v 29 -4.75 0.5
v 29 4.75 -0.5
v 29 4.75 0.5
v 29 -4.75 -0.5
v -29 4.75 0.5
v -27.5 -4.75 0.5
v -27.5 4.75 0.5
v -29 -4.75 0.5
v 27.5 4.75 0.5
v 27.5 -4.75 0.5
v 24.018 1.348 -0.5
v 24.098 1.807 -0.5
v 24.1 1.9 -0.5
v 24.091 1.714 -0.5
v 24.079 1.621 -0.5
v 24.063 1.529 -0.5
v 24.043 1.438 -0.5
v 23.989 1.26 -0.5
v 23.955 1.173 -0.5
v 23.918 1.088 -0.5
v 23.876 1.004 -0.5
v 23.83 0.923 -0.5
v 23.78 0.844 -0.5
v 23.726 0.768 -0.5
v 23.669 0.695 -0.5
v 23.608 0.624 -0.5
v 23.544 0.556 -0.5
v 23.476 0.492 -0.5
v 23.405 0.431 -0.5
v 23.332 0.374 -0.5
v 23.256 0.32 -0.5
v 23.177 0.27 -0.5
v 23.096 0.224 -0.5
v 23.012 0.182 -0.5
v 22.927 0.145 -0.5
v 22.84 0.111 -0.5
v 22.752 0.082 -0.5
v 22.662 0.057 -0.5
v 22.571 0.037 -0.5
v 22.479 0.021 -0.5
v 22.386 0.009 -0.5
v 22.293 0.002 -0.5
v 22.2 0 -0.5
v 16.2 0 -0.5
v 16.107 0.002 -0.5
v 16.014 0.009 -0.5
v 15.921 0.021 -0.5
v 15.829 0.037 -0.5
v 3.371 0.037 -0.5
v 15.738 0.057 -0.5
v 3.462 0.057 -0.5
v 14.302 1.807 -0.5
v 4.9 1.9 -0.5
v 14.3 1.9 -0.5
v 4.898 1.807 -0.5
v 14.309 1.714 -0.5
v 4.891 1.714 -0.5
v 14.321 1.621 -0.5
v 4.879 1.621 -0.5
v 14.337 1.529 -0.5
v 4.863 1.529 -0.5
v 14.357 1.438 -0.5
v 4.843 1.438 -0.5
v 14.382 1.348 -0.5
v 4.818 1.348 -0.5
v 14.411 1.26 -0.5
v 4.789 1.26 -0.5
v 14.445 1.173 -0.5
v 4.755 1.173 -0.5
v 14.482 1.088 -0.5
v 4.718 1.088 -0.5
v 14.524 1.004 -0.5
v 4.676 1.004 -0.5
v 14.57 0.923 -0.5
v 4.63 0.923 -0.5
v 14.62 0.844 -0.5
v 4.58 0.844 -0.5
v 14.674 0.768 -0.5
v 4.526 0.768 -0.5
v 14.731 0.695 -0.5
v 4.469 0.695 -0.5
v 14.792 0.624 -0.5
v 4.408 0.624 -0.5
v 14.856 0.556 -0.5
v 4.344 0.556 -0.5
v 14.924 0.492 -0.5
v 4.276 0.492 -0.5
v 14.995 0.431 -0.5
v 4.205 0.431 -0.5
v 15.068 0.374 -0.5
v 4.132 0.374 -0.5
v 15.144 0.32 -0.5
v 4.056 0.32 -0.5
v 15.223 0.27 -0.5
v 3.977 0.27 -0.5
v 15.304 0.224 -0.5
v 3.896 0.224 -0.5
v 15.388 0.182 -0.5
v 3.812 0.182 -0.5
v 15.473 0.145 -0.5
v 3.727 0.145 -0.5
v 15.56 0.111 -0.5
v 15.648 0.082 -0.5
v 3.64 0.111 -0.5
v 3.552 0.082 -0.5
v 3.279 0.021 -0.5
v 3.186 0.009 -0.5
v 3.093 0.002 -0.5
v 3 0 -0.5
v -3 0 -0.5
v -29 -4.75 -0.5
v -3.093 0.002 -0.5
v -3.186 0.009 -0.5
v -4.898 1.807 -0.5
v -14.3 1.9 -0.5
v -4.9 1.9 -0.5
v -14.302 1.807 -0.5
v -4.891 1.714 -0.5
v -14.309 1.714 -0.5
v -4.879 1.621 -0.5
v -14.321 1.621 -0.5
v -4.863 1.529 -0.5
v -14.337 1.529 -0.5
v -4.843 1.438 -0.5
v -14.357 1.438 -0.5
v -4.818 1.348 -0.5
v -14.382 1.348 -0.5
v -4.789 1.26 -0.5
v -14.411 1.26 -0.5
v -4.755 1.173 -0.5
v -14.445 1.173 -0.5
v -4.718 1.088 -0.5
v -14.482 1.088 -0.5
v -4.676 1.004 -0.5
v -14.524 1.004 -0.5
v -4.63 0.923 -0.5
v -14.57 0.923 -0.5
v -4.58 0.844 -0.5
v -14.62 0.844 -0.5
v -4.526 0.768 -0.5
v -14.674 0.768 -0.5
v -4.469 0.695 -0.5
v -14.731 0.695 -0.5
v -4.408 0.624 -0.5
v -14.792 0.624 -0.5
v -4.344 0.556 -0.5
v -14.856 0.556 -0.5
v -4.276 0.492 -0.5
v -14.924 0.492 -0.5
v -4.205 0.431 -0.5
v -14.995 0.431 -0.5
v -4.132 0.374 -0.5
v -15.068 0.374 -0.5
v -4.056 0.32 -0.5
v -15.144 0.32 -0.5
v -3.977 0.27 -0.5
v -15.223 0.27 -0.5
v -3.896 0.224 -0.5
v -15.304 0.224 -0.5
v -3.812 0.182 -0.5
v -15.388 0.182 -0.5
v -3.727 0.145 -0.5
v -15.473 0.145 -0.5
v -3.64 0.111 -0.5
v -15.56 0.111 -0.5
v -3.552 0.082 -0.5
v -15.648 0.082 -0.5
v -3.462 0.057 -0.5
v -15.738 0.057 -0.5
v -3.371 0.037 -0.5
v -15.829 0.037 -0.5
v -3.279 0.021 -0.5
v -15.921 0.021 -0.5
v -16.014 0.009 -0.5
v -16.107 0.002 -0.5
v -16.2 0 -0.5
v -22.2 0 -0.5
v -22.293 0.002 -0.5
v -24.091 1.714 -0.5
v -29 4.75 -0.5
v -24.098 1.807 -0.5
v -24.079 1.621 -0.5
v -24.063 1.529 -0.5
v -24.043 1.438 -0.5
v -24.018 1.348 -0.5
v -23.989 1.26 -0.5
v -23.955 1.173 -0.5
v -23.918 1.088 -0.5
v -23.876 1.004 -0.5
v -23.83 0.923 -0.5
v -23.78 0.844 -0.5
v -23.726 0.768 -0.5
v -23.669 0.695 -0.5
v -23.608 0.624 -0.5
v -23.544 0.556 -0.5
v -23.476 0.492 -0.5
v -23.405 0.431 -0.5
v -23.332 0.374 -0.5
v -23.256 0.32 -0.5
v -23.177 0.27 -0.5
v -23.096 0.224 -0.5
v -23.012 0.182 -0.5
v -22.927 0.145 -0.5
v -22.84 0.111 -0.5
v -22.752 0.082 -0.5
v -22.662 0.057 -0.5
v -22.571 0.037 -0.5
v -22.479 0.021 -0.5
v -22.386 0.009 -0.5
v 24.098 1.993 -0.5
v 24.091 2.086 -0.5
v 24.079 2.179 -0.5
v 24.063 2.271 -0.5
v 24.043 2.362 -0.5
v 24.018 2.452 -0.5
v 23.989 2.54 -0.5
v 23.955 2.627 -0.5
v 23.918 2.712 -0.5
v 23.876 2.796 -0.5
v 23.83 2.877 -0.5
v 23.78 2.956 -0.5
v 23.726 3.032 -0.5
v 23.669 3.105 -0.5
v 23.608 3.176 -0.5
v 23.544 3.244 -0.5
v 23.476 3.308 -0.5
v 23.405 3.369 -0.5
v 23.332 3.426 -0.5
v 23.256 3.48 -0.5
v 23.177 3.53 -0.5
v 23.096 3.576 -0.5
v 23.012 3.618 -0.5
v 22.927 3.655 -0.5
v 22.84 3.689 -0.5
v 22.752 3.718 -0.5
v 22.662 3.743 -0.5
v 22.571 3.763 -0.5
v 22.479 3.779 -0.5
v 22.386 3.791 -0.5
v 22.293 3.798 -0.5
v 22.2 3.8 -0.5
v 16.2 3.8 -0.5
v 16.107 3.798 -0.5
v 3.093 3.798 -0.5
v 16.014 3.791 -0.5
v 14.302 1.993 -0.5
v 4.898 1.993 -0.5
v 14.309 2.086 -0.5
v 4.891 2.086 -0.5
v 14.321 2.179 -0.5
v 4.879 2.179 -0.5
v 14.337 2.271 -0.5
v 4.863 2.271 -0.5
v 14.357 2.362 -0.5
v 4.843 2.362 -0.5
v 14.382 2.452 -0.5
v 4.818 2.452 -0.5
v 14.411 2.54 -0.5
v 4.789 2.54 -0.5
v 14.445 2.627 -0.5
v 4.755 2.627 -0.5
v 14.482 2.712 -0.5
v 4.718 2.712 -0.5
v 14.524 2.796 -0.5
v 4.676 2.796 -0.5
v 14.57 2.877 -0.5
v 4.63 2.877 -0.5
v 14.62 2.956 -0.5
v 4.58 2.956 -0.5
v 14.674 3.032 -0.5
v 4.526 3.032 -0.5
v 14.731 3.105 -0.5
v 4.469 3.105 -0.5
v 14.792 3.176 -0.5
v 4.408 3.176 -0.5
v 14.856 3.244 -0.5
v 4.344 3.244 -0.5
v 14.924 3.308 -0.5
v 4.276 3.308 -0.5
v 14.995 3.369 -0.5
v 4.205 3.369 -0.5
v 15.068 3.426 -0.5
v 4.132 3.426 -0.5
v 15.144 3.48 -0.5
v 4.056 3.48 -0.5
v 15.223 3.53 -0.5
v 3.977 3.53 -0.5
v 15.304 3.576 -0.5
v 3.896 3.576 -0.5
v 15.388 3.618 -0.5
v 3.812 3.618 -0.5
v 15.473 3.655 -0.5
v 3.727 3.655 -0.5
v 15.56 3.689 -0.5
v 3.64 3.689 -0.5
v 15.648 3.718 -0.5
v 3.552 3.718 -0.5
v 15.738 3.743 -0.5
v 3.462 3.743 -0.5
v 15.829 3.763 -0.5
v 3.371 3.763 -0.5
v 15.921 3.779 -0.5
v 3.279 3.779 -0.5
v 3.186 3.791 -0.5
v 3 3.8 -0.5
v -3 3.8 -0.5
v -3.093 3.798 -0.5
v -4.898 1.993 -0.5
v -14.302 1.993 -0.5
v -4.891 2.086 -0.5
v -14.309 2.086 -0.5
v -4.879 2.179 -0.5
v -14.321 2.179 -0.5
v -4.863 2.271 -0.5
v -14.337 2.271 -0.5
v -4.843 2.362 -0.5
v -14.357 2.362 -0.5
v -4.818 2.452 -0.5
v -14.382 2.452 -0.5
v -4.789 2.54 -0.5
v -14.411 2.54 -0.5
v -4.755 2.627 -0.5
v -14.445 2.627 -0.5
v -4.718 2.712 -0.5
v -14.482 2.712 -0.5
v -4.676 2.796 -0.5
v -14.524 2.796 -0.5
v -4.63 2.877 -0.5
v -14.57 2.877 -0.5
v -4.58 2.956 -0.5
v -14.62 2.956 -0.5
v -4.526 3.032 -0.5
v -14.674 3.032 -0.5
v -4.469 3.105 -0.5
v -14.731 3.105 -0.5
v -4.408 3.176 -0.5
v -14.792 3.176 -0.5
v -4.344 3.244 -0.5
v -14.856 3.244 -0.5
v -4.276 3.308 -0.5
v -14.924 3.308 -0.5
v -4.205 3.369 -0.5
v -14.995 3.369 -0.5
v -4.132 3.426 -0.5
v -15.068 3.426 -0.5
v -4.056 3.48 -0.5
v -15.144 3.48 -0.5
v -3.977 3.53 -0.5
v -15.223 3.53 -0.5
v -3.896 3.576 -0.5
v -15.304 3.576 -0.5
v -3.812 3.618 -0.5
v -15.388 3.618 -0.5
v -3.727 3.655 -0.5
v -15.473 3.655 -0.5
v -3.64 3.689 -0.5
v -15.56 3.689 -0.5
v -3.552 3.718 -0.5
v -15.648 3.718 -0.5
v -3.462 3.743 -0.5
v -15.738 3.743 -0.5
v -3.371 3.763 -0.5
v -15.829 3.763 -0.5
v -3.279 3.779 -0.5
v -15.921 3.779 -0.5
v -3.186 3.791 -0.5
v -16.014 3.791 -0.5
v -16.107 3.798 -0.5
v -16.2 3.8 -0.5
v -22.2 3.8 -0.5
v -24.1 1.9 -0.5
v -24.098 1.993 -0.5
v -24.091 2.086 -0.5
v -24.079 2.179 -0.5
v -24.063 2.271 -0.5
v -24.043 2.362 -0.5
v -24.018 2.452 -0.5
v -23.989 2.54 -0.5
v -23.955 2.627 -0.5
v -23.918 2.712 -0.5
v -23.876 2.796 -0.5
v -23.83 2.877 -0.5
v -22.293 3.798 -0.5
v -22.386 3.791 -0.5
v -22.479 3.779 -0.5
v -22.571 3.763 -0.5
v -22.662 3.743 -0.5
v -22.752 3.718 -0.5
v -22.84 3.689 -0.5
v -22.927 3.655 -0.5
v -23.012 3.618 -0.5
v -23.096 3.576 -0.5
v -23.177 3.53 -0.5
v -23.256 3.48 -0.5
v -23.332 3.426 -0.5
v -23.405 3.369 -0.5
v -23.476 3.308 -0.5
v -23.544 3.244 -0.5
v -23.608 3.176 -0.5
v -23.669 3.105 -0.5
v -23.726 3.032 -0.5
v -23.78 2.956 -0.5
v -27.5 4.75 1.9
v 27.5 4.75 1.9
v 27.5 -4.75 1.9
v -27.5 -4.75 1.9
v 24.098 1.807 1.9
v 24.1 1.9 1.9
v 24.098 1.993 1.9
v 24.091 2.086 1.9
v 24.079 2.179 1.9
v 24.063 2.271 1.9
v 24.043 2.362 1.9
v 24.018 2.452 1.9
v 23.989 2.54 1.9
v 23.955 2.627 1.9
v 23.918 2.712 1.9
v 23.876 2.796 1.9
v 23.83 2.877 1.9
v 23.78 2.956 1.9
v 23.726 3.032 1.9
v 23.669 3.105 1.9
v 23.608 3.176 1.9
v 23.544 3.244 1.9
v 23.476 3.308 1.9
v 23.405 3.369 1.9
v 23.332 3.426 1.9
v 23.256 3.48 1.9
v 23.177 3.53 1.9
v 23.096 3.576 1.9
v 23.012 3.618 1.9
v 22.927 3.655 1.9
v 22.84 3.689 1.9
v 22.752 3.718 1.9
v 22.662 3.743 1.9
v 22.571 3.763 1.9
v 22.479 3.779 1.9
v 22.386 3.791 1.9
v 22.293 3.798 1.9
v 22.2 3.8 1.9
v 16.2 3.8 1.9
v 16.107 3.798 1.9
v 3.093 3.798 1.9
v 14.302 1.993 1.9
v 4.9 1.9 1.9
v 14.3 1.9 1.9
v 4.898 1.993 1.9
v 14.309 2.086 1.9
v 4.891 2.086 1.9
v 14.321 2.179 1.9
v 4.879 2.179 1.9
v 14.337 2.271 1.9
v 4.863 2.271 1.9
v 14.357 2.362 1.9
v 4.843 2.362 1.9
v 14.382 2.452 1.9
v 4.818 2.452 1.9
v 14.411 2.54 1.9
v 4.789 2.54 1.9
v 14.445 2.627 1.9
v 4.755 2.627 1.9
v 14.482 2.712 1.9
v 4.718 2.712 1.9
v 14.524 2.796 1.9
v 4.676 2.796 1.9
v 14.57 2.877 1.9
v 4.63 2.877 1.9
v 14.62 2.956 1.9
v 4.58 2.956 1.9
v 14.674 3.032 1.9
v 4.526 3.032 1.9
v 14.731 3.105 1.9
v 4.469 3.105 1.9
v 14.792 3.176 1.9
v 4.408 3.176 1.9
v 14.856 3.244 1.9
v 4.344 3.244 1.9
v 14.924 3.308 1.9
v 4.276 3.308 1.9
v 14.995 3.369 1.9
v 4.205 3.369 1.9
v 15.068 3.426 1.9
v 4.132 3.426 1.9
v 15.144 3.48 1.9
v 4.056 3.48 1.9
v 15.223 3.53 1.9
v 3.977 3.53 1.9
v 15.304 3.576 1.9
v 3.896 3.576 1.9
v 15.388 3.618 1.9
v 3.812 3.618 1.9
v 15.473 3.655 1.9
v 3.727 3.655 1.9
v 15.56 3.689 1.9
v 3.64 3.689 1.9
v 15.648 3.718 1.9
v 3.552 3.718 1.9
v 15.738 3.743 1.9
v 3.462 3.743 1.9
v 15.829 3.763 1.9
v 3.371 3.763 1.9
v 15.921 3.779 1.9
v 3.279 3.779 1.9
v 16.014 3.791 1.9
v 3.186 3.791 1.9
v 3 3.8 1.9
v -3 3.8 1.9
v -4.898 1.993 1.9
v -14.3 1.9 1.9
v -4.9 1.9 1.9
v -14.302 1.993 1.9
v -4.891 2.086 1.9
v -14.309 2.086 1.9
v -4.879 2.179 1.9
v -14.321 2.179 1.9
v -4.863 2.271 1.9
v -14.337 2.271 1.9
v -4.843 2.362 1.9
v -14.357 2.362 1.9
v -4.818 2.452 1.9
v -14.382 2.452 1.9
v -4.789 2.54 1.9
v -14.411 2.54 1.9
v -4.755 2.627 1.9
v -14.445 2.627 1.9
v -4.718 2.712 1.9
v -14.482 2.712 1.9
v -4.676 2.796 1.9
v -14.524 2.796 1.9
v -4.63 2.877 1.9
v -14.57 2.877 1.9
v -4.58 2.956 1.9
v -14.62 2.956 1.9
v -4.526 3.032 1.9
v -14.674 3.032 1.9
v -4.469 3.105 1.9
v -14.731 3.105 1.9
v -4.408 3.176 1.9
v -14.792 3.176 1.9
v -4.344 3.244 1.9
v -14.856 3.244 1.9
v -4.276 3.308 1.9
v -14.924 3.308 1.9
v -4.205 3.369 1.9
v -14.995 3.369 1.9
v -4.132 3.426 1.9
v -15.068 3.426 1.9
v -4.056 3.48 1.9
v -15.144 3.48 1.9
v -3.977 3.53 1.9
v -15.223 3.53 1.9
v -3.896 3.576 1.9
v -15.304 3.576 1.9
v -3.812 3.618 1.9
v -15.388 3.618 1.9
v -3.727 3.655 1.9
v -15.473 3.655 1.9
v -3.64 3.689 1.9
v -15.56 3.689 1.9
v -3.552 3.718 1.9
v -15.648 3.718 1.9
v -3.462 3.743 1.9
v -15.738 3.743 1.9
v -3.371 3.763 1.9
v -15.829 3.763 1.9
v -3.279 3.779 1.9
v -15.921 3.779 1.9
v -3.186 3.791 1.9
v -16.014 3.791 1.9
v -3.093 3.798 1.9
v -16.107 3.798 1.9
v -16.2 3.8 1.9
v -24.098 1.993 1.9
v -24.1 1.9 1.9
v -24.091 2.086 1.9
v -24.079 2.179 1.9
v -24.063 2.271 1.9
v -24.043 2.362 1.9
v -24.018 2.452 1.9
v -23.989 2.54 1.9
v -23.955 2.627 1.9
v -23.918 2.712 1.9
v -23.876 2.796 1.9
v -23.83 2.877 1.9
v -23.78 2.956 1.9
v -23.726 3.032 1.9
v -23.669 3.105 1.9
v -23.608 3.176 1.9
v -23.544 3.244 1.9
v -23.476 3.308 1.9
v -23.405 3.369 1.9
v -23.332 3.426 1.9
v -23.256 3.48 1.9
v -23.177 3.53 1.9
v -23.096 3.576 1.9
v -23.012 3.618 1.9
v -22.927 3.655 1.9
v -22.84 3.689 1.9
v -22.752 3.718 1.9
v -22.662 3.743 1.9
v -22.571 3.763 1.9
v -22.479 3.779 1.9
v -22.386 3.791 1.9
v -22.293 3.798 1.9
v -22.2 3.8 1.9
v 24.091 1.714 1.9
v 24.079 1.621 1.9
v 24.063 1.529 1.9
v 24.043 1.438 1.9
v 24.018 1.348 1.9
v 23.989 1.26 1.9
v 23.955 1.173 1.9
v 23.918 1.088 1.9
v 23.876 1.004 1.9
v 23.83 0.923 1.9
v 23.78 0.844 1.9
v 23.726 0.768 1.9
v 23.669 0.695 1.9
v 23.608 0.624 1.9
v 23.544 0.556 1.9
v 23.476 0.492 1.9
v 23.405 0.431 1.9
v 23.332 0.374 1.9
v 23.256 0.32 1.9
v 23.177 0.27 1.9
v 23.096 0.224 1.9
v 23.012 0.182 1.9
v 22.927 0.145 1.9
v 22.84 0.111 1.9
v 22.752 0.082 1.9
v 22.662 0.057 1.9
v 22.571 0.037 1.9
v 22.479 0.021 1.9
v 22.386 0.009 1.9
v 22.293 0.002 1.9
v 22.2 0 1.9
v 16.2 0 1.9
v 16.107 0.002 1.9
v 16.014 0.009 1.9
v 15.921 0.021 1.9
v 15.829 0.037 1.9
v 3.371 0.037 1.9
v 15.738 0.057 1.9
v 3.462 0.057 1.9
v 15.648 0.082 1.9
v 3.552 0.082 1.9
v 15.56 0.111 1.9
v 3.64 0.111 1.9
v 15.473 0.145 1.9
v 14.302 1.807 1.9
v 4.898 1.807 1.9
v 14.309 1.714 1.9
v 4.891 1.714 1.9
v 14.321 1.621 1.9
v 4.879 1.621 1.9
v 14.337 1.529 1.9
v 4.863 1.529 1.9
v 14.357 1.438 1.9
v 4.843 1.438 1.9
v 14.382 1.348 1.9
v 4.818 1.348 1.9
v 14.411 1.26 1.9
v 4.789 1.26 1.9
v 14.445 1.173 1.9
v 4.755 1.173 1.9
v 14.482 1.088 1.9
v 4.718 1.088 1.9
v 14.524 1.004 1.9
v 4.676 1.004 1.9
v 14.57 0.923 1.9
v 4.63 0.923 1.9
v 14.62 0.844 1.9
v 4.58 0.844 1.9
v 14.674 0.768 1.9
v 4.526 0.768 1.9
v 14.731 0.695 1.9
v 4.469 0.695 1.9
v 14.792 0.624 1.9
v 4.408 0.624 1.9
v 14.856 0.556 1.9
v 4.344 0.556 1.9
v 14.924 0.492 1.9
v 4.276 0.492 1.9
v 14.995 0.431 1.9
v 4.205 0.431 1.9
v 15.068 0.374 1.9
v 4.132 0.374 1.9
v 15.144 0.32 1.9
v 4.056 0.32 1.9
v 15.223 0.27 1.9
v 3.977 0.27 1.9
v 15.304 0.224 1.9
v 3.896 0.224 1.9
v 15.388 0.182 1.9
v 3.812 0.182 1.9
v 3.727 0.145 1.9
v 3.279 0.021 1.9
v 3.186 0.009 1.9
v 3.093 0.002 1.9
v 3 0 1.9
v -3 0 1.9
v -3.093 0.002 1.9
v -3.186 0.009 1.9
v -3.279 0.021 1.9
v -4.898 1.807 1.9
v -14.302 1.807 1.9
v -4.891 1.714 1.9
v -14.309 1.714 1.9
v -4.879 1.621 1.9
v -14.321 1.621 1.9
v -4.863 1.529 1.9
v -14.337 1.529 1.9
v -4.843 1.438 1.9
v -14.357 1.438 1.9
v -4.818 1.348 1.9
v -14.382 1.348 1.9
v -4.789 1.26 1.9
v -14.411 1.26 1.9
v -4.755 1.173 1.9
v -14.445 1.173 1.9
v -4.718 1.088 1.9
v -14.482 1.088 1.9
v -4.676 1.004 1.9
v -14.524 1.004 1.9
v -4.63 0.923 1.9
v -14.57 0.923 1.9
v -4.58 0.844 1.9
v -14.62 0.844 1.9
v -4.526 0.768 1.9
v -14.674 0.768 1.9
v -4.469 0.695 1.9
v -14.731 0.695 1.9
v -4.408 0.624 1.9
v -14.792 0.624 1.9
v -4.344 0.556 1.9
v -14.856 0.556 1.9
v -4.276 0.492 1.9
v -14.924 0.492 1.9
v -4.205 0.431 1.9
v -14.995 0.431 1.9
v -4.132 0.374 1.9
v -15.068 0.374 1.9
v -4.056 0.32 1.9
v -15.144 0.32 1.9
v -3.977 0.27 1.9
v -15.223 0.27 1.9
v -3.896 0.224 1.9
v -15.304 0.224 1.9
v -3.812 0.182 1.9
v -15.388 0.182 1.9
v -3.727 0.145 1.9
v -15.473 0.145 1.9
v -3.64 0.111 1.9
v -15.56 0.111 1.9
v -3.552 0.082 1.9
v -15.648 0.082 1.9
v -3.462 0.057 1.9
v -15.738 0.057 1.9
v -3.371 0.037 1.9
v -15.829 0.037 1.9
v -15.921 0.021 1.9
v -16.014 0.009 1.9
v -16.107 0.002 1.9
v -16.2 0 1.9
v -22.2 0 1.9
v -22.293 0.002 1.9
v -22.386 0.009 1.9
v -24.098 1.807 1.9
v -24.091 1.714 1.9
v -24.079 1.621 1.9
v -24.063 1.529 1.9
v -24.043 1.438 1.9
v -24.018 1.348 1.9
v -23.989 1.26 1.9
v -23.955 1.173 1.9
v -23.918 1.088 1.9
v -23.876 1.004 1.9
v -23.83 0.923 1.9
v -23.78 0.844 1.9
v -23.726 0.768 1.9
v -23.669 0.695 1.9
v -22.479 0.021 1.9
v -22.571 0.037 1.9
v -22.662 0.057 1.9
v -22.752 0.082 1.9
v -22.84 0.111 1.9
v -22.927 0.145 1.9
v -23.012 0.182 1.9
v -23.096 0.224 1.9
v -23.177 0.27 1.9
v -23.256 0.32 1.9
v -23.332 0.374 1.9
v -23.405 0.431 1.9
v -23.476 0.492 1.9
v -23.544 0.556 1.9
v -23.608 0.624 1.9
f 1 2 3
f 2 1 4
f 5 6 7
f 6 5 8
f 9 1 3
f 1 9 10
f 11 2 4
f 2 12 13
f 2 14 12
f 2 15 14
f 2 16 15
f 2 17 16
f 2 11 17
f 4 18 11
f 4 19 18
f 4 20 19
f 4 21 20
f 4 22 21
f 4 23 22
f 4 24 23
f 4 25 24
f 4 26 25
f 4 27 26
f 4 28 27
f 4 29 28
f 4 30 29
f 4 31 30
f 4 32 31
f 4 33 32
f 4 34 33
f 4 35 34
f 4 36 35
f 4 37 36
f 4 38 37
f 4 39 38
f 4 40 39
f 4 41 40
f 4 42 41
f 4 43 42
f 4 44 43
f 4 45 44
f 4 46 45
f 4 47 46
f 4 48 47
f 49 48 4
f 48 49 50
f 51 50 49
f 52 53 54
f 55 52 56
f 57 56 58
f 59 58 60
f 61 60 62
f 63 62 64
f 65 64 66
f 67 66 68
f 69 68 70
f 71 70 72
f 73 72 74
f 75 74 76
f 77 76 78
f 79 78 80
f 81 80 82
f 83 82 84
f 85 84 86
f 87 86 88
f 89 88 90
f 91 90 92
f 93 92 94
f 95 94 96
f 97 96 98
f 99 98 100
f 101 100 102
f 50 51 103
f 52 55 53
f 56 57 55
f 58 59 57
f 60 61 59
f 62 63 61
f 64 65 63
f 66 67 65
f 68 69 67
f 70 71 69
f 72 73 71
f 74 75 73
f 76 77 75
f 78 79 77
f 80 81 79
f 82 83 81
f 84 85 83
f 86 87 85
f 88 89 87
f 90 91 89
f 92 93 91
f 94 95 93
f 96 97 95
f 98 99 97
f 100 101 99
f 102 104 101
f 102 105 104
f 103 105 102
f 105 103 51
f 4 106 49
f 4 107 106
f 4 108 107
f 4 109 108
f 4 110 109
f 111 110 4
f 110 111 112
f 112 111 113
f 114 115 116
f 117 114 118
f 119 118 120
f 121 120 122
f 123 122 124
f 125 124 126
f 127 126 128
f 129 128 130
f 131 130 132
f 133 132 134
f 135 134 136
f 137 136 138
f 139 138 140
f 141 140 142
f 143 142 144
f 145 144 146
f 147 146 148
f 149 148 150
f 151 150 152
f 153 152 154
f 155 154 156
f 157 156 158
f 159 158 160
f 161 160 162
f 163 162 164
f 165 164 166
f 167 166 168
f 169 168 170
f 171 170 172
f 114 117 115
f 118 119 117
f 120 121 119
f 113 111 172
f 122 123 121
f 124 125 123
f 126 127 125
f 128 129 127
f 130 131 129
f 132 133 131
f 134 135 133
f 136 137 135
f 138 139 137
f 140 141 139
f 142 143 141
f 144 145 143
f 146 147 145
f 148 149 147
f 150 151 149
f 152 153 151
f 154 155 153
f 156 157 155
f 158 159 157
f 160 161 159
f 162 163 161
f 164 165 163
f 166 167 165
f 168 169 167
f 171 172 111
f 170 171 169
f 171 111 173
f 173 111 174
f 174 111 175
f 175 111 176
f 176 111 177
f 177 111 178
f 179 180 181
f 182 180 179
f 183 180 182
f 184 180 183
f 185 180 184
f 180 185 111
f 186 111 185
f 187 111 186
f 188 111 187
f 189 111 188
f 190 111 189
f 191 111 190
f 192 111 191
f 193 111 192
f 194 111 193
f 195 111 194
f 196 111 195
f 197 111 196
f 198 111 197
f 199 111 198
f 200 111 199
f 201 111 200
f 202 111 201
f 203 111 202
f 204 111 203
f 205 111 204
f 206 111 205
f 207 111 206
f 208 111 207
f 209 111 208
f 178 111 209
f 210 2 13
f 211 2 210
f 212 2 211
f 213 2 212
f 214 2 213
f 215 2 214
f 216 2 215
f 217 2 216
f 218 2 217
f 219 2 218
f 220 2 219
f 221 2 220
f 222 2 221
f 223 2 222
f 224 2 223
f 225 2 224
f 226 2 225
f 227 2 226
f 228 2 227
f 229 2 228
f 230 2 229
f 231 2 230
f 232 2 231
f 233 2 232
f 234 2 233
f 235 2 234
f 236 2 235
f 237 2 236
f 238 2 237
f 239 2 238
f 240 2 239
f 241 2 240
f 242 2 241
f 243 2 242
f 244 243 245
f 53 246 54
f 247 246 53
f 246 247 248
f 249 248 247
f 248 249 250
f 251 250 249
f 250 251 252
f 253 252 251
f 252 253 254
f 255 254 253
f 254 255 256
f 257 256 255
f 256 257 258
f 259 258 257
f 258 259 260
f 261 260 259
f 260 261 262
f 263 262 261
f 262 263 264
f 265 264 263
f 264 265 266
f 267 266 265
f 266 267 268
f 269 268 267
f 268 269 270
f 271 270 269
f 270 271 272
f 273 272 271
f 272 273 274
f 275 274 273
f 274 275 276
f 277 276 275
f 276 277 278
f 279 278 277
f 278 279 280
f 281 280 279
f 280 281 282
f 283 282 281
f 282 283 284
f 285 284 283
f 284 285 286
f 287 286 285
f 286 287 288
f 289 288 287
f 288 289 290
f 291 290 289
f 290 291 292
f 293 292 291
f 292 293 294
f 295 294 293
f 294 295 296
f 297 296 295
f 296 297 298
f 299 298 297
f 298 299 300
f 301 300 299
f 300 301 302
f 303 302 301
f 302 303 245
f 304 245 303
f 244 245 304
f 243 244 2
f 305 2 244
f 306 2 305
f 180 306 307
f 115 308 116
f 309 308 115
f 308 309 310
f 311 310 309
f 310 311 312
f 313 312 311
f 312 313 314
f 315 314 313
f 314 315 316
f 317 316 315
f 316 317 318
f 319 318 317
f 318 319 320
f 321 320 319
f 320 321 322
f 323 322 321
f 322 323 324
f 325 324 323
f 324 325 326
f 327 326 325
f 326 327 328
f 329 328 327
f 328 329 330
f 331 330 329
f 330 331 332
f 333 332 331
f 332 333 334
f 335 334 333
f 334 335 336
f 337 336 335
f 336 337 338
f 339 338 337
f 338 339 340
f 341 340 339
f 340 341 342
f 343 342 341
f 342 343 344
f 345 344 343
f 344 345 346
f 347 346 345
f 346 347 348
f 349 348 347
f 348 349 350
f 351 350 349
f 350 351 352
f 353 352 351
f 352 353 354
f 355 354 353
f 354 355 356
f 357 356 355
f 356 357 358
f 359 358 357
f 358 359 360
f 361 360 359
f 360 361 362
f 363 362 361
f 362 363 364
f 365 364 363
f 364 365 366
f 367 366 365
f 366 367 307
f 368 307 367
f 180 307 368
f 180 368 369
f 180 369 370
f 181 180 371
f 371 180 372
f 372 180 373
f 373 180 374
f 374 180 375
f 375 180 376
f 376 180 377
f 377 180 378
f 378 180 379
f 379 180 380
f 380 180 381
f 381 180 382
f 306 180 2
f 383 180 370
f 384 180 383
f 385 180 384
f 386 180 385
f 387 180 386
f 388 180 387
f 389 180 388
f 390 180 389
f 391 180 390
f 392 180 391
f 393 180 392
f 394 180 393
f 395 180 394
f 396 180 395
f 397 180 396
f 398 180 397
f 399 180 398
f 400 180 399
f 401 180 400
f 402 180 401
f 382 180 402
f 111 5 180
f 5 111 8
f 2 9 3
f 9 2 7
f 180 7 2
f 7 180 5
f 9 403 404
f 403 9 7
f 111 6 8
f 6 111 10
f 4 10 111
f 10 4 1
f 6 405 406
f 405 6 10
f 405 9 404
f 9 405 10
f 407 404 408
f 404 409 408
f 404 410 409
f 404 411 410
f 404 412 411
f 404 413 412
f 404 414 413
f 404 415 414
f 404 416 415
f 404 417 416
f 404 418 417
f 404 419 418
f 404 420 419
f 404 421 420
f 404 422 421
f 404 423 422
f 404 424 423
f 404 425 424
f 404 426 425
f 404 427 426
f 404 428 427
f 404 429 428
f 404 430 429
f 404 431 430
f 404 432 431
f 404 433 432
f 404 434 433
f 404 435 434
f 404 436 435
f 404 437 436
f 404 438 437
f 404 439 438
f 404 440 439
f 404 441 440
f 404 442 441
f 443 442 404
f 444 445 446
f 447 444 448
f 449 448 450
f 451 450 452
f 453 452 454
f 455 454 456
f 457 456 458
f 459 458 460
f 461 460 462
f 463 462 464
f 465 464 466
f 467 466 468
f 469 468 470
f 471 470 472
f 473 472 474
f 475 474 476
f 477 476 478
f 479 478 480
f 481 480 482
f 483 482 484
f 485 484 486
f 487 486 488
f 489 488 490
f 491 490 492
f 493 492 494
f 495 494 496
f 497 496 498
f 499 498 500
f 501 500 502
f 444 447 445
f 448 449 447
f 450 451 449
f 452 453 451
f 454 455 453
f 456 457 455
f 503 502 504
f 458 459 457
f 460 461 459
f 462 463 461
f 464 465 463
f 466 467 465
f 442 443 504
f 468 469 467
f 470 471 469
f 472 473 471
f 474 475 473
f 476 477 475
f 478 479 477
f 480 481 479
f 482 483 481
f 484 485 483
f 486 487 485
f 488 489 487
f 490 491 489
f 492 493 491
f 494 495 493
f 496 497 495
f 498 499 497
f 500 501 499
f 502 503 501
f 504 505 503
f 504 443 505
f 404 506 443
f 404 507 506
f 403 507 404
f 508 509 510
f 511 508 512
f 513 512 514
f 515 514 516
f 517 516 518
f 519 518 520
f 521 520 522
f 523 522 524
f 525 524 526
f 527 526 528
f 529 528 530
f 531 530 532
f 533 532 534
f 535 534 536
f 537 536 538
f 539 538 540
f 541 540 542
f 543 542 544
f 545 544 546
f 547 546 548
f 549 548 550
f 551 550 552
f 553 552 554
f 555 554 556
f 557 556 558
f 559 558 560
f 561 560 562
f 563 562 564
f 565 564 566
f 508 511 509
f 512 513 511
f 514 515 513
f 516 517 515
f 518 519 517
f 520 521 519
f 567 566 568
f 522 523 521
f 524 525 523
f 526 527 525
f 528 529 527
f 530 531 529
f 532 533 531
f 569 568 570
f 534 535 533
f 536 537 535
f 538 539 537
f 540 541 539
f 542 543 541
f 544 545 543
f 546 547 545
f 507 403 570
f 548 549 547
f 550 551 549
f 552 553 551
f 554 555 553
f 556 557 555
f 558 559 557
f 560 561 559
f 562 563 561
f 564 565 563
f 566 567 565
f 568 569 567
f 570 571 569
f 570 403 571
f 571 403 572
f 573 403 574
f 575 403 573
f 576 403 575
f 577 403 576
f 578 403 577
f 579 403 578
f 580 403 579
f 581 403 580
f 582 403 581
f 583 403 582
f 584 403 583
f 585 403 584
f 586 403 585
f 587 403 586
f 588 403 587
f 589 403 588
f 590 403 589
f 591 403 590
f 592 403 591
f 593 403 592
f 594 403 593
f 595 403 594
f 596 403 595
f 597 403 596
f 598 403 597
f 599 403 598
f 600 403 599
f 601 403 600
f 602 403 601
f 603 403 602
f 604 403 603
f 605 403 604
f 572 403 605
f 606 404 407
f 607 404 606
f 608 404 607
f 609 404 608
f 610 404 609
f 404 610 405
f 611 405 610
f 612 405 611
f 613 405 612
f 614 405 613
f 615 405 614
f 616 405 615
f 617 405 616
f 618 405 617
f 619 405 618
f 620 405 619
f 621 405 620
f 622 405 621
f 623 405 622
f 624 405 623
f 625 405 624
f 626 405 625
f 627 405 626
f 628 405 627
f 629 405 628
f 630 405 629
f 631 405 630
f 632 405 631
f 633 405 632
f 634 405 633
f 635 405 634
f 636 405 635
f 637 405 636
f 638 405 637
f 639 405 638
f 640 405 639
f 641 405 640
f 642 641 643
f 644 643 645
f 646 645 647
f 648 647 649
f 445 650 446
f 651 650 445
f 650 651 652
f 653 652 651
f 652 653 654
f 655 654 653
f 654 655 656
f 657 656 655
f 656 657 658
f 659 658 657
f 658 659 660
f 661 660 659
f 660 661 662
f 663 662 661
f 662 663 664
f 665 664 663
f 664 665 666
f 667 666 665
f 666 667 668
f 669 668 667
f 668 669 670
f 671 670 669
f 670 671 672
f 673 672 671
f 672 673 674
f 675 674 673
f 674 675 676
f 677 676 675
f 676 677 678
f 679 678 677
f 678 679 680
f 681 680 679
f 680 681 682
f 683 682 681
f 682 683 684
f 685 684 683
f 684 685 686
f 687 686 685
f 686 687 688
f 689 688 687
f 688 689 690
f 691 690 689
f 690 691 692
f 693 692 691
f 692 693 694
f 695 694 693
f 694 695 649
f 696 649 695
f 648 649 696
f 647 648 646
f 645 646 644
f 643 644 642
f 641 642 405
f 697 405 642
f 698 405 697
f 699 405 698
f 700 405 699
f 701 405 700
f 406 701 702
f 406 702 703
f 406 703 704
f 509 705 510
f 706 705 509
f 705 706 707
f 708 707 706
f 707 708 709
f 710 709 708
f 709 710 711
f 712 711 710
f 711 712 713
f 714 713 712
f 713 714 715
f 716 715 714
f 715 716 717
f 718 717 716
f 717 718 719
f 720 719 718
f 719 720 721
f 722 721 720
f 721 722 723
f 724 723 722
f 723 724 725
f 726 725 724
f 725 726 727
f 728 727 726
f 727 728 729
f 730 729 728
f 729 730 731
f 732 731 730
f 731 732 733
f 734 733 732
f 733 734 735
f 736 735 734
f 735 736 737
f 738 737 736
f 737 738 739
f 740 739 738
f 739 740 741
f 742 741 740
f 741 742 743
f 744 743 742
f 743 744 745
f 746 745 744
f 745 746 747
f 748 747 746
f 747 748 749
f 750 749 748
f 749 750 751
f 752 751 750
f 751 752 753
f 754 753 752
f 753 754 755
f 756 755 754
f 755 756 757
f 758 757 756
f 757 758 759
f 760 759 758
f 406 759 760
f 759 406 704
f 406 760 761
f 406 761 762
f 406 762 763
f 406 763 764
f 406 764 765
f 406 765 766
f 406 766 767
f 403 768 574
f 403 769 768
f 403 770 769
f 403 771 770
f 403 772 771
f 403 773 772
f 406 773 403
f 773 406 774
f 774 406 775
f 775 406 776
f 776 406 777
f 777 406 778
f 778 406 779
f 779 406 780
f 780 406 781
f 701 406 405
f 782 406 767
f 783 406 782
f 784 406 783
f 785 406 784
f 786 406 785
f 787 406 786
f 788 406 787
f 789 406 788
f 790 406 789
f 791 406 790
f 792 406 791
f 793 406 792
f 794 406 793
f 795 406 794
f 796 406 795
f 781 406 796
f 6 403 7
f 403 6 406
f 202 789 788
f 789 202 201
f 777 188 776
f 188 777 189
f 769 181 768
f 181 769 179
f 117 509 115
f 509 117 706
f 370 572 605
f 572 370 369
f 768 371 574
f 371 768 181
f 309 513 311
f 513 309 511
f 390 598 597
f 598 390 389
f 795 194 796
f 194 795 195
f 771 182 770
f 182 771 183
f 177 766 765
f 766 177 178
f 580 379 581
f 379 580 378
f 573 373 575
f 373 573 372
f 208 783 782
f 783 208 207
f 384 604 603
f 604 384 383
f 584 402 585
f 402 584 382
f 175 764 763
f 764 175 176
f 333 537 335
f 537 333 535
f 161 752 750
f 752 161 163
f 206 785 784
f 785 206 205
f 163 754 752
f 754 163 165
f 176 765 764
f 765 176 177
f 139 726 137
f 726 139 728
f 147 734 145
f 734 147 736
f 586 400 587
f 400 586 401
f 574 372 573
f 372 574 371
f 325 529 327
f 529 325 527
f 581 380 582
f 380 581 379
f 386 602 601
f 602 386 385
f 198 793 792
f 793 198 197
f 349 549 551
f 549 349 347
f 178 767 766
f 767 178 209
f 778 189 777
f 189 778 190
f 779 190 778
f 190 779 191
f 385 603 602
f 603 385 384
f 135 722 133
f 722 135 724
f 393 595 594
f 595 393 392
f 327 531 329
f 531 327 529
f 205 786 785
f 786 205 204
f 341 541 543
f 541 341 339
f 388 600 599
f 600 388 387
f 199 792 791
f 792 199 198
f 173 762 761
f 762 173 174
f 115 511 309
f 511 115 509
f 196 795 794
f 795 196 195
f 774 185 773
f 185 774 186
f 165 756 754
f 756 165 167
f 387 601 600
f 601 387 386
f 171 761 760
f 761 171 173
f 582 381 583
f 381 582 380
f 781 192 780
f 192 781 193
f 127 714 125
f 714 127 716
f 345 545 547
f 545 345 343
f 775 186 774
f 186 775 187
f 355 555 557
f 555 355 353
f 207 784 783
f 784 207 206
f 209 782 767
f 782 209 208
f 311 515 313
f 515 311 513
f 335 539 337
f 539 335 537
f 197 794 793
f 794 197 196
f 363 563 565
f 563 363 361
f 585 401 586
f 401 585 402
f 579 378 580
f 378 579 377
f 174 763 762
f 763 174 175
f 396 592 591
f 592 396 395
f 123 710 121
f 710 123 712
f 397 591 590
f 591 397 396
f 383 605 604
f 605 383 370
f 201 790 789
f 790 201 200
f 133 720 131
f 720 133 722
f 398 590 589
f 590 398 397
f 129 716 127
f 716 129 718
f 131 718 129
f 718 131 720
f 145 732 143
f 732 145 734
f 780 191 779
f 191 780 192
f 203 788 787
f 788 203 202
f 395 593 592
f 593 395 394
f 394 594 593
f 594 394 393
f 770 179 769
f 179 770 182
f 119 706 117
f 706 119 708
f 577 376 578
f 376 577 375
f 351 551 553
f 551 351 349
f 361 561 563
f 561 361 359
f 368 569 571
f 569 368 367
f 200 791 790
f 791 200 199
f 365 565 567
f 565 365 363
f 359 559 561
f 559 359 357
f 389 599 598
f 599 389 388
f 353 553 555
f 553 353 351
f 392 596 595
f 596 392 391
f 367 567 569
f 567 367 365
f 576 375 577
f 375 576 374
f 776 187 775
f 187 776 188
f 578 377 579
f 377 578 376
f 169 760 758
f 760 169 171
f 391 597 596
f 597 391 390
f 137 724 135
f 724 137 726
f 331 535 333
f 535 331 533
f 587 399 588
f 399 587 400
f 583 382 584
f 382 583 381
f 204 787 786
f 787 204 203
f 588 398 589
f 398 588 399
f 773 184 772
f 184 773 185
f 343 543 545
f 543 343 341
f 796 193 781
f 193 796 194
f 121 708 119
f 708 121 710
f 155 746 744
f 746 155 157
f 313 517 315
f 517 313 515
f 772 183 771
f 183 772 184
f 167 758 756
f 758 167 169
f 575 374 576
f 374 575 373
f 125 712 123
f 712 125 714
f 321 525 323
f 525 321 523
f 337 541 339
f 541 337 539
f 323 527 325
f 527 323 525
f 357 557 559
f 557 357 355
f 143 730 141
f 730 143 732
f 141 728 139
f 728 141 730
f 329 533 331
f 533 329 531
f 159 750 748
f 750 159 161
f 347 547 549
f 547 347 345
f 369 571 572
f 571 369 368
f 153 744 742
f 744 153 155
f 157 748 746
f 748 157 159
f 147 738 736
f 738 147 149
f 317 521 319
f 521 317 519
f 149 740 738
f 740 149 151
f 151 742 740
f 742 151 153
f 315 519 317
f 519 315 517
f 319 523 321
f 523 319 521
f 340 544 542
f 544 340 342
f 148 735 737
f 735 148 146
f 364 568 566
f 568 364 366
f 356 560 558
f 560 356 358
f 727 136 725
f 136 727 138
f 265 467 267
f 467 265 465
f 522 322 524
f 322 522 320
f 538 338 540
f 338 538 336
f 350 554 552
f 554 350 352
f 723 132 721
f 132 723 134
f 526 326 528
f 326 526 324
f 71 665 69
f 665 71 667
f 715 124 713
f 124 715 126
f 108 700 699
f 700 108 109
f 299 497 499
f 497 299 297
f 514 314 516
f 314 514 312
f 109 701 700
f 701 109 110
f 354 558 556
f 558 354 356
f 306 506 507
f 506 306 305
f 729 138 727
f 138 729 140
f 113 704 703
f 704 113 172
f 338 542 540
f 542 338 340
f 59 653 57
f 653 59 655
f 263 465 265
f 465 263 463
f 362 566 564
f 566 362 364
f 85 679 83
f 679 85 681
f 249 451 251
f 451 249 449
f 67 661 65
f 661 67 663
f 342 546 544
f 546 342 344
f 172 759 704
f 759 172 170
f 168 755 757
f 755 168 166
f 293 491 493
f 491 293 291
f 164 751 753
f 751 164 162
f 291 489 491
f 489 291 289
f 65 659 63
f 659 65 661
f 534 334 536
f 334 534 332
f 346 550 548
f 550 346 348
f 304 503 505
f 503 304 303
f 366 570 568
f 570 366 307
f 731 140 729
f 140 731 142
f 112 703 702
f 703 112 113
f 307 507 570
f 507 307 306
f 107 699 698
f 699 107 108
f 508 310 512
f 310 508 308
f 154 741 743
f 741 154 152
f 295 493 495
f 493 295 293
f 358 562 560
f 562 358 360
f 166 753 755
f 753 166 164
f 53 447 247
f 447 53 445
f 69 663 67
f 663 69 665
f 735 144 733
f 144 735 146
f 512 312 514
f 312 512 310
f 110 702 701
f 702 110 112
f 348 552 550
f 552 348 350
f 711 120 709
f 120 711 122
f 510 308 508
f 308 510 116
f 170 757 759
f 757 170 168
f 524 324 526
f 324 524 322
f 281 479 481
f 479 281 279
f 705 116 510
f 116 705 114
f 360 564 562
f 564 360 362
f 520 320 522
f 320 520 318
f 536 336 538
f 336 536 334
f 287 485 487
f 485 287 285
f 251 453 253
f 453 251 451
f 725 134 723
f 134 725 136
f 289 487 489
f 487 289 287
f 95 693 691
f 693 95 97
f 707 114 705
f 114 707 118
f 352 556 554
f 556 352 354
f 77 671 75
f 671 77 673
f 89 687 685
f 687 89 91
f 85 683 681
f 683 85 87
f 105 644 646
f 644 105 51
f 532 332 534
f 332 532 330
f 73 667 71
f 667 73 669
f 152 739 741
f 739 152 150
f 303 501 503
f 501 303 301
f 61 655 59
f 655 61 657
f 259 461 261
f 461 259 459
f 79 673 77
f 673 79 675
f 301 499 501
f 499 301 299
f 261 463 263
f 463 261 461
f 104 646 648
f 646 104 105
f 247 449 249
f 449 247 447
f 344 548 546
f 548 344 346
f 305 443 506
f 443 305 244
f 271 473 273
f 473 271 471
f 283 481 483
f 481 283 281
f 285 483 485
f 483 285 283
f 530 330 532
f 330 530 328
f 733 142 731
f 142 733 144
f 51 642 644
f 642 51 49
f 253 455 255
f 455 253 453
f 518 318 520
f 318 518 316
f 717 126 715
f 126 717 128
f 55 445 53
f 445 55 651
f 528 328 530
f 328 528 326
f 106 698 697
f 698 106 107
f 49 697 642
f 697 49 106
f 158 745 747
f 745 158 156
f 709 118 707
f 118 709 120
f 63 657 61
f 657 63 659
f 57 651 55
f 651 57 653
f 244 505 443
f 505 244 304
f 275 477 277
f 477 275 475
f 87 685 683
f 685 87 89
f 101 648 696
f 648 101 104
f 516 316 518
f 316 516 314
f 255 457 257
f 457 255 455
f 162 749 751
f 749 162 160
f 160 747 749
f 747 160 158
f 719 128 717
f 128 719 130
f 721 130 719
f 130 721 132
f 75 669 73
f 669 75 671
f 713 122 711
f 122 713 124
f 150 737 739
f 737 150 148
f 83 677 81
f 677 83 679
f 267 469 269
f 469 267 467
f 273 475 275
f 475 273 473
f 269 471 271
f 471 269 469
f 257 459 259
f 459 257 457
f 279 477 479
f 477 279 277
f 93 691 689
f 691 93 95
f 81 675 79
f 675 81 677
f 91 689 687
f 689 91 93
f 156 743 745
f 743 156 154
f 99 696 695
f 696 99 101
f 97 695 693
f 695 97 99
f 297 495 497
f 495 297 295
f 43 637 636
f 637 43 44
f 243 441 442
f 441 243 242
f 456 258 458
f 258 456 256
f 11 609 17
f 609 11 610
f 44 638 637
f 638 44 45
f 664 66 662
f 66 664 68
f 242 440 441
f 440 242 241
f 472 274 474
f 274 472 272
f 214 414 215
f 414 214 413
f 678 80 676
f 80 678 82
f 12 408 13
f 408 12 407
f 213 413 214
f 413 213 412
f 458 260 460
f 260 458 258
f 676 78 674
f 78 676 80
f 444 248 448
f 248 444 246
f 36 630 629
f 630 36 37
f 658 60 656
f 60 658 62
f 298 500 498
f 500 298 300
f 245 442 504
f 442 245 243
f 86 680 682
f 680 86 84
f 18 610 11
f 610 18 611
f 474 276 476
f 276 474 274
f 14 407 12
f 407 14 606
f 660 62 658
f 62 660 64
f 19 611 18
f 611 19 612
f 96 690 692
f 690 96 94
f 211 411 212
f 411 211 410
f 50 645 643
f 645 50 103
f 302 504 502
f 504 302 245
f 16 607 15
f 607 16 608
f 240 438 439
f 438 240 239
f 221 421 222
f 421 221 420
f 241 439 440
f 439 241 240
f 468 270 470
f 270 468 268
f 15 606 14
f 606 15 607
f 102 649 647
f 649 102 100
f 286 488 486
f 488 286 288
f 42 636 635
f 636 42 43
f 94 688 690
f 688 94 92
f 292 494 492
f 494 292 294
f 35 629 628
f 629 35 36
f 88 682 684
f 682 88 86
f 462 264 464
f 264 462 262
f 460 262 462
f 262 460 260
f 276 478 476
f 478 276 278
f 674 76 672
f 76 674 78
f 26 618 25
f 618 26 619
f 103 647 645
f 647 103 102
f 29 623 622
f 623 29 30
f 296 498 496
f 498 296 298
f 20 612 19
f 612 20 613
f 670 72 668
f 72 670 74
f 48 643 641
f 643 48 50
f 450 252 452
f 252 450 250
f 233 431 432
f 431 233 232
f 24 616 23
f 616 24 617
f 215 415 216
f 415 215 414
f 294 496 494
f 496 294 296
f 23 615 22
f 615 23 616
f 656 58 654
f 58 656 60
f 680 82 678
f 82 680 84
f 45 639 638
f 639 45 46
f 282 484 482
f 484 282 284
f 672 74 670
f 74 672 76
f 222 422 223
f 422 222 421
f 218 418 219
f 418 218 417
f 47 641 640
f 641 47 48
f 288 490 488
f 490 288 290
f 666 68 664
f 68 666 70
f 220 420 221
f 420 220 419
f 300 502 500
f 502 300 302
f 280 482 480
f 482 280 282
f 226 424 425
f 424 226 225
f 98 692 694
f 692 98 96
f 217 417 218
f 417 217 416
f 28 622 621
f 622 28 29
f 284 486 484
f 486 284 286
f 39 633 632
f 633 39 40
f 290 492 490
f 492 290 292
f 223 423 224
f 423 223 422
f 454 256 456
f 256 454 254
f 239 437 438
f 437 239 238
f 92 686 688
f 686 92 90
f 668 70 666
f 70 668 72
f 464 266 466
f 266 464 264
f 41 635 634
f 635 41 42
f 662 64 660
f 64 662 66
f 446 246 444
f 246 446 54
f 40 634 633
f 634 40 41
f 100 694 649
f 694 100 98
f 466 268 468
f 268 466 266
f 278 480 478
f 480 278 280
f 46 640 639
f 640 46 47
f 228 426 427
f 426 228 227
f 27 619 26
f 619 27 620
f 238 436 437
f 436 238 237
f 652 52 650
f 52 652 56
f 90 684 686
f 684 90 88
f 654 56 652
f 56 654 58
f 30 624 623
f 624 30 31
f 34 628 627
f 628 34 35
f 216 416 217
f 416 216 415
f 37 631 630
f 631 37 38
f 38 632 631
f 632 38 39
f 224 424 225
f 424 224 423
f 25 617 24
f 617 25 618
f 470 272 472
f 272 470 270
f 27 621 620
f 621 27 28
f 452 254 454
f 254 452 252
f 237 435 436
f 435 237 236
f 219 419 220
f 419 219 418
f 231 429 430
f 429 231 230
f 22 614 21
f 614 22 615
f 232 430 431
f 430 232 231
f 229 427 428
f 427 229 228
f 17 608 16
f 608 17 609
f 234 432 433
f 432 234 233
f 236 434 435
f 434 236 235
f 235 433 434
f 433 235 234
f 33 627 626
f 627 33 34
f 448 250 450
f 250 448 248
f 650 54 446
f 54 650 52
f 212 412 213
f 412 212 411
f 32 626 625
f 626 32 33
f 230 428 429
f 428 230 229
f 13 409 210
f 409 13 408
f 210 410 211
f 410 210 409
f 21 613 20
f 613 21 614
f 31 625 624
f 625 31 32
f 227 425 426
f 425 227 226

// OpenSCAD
$fn=128;
epsilon=0.01;

module usb() {
  hull() {
    translate([3, 0, 0])
      cylinder(r=1.9, h=20, center=true);
    translate([-3, 0, 0])
      cylinder(r=1.9, h=20, center=true);
  }
}

module cover() {
  difference() {
    union() {
      cube(size=[58, 9.5, 1], center=true);
      translate([0, 0, 1])
        cube(size=[55, 9.5, 1.8], center=true);
    }
    translate([-19.2, 1.9, 0]) usb();
    translate([0, 1.9, 0]) usb();
    translate([19.2, 1.9, 0]) usb();
  }
}

module print() {
  translate([0, 4, 0.5]) 
    cube(size=[1, 88, 1], center=true);
  for (i=[-3:4]) {
    translate([0, i*12, 0.6]) cover();
  }
}

// print();
cover();
